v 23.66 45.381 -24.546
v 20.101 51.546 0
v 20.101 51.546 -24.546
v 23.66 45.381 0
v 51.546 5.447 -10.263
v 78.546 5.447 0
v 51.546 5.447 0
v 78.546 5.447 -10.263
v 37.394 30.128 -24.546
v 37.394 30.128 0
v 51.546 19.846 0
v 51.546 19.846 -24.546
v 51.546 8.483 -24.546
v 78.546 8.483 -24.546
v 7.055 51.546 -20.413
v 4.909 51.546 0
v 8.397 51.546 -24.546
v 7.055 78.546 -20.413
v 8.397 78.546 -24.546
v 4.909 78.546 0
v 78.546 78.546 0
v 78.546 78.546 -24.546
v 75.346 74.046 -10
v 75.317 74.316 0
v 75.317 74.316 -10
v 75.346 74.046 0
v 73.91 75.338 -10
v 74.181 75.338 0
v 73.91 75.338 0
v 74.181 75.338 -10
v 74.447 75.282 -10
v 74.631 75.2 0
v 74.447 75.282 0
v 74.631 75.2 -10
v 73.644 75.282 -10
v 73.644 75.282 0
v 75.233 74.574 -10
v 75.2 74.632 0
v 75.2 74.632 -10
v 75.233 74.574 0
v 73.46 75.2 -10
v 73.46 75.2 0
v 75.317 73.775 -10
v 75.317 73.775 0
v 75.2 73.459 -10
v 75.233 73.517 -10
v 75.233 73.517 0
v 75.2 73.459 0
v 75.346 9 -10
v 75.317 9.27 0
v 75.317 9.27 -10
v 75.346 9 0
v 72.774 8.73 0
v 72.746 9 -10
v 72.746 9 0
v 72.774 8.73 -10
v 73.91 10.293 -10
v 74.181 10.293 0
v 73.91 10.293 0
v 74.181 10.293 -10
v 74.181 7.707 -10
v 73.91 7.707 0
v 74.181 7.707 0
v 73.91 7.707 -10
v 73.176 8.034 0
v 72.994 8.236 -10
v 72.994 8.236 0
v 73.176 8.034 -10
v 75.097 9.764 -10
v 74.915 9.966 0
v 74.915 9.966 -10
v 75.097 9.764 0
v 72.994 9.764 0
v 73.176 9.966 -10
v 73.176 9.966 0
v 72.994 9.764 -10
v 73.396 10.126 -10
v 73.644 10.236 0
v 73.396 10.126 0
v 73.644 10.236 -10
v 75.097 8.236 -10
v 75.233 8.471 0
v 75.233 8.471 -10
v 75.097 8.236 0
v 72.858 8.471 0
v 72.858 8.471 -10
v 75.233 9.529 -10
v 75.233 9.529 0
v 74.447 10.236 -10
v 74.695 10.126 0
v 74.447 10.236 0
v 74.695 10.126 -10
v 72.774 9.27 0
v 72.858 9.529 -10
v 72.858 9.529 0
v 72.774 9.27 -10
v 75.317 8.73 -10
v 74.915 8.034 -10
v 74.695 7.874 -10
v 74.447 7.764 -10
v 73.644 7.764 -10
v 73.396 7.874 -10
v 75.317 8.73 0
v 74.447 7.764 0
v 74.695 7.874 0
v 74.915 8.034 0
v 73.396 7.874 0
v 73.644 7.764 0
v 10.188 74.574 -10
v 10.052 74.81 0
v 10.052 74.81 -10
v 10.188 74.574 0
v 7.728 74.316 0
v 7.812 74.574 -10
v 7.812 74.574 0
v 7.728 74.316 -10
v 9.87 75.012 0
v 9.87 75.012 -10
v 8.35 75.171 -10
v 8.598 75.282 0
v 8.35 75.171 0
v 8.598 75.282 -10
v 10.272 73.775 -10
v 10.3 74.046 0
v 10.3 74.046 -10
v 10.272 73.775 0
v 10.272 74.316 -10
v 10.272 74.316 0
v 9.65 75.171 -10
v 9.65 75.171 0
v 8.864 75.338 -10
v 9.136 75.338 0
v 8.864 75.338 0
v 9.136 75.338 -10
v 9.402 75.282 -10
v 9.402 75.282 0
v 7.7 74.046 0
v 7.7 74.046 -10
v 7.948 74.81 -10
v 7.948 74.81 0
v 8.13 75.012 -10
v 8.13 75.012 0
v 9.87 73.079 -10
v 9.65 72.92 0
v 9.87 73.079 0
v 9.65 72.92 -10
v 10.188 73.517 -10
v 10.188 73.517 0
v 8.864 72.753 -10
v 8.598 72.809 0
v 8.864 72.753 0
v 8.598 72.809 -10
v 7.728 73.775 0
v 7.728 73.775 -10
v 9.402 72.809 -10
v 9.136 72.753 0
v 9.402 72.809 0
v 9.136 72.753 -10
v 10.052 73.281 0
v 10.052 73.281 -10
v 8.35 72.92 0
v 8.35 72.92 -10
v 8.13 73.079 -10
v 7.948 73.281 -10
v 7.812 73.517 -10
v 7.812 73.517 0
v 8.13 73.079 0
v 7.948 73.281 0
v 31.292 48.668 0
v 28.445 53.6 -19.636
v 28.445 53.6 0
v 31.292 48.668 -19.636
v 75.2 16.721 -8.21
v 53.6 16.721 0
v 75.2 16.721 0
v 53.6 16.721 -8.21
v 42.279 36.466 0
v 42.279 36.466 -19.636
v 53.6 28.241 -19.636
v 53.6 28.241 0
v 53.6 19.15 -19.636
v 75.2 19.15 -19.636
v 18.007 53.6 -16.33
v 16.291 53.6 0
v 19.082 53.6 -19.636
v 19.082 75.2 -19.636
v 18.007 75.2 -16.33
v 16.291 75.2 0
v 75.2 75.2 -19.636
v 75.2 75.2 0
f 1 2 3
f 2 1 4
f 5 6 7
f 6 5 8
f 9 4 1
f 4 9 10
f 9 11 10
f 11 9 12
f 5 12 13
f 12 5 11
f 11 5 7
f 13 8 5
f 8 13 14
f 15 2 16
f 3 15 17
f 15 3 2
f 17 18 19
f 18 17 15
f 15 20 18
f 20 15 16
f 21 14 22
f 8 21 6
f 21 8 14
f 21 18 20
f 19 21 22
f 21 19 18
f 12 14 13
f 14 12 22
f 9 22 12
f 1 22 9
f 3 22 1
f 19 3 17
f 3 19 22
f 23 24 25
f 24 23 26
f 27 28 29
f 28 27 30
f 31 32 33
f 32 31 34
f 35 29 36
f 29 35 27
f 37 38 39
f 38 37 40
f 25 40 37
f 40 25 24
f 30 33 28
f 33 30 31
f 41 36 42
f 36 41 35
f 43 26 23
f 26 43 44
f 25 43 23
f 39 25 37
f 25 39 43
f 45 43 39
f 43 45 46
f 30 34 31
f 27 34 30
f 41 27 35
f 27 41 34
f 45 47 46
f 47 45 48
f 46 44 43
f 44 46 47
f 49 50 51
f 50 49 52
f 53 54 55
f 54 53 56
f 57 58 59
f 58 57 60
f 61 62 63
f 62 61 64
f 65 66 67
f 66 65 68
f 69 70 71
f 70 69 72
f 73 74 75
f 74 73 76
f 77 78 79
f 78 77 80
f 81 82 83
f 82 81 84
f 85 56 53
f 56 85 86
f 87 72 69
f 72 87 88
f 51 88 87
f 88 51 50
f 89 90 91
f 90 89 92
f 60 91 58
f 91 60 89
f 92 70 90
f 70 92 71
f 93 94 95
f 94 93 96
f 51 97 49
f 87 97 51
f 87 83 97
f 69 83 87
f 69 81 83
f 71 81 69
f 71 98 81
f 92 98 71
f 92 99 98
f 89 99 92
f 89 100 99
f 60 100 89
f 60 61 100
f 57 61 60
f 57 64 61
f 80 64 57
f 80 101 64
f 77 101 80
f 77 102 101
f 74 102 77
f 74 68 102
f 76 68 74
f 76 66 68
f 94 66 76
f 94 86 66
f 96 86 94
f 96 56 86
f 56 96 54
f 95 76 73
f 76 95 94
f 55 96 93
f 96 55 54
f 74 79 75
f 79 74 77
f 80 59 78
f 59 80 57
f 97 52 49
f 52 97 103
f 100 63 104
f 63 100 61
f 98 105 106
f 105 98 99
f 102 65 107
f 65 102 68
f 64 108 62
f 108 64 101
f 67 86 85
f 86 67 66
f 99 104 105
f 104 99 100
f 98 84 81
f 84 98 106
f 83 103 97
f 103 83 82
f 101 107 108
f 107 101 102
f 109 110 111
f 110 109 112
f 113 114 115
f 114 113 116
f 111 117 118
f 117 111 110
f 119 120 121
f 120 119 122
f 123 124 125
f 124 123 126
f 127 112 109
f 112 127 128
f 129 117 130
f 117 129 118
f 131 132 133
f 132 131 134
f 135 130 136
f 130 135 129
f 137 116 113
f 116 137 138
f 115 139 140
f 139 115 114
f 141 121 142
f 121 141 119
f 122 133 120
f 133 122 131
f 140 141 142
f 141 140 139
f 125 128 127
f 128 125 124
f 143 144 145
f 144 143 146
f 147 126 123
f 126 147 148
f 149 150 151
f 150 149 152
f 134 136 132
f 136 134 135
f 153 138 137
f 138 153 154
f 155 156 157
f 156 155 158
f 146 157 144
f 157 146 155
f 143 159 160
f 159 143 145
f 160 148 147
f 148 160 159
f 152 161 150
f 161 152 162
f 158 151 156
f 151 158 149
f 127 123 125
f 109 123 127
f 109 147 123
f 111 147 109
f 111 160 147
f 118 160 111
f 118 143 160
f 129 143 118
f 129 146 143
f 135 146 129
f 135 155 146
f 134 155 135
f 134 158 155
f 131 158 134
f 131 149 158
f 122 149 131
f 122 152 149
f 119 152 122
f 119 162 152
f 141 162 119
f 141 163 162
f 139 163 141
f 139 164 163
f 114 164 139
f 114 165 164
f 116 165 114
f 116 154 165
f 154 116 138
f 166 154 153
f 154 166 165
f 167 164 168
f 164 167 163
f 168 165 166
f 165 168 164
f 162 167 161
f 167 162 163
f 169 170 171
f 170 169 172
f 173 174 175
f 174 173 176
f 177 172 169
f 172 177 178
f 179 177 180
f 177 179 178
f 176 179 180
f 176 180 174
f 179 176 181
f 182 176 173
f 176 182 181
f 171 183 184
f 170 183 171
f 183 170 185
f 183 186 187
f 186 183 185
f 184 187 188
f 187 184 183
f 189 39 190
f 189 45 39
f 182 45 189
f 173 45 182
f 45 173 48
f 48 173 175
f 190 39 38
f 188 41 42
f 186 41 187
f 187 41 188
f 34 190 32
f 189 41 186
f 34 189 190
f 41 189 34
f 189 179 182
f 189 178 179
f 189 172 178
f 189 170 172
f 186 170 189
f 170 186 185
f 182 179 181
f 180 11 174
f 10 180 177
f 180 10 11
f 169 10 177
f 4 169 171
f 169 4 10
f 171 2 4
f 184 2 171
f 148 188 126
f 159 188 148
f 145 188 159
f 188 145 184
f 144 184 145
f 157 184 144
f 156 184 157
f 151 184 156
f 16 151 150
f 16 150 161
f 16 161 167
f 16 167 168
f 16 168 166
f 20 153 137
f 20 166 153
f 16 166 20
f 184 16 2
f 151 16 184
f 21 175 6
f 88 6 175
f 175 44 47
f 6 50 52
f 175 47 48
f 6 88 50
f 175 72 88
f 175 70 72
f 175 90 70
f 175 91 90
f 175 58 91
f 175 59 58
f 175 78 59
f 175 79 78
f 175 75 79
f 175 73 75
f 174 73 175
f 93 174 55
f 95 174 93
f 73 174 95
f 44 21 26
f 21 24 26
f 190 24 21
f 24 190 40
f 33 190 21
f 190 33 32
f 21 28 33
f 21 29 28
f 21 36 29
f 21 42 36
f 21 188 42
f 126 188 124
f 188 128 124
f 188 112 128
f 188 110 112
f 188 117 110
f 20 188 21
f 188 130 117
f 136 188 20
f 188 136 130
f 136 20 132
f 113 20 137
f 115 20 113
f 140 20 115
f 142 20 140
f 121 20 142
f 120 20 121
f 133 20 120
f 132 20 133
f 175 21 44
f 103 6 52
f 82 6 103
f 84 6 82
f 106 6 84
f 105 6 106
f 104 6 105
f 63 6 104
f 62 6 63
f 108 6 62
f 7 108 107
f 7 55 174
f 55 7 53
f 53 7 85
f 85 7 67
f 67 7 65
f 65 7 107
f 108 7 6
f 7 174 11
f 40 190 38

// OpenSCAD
// file: variables.scad
$fn=200;

scale_factor = 300/55;

CUBIE=18.9*scale_factor; //total side length of each cube piece (including rounded edges)
CORE=18*scale_factor;
SCREW_TIP=1.5*scale_factor;
SCREW_BODY=2*scale_factor;
SCREW = 3.5;
SCREW_HEAD=3.8*scale_factor;
INNER=4.5*scale_factor;
SPRING=3.2*scale_factor;
ROUND=2*scale_factor; //radius of rounded edges
DEPTH=6*scale_factor;
RAFT=5*scale_factor;
LAYER=0.3*scale_factor;
GAP=0.25*scale_factor;

core_height = 20 * scale_factor;
core_radius = 3.1 * scale_factor;

WITH_SUPPORT=false;
WITH_RAFT=false;

inner_cubie=(CUBIE-2*ROUND); //length of each cube before rounded edges

tile_length = inner_cubie*0.75;
//tile_height = 0.8 * scale_factor;
tile_height = 3;

HOLE_RADIUS = 1.3;
HOLE_HEIGHT = 20;

module tile(length, height) {
	translate([-length/2,-length/2,0]) {
		minkowski(){
			translate([0,0,-height/2]) cube([length,length,height]);
			cylinder(r=ROUND,h=height,center=true);
		}
	}
	
}
//tile(tile_length,tile_height);

module cubie() {
    translate([-inner_cubie/2,-inner_cubie/2, -inner_cubie/2])
    minkowski() {
        cube([inner_cubie, inner_cubie, inner_cubie]);
        sphere(r=ROUND);
    }
}

module disc() {
    cylinder(CUBIE, r1=CORE, r2=CORE,  center=true);

}

module disc2() {
    cylinder(CUBIE*10, r1=CORE, r2=CORE,center=true);

}

module icore() {
    disc();
    rotate([0,90,0])
        disc();
    rotate([90,0,0])
        disc();
}

module core2() {
    intersection() {
        disc2();
        rotate([0,90,0])
            disc2();
        rotate([90,0,0])
            disc2();
    }
}

module screw() {
    translate([5.2,0,0])
    rotate([0,90,0]) {
        cylinder(11.7,r1=SCREW_BODY,r2=SCREW_BODY,center=true);
        translate([0,0,-11.7/2-1.7/2])
            cylinder(1.7,r1=SCREW_HEAD,r2=SCREW_HEAD,center=true);
        translate([0,0,11.7/2+5.7/2])
            cylinder(5.7,r1=SCREW_TIP,r2=SCREW_TIP,center=true);
    }
}
// main file
include <variables.scad>
$fn = 30;
x=5;

module edge_connector_full() {
    difference() {
        intersection() {
            cube([2*CUBIE-2*INNER,2*CUBIE-2*INNER,2*INNER],center=true);
                      //cube([50*scale_factor,50*scale_factor,2*INNER],center=true);
            translate([CUBIE,CUBIE,0])
            icore();
        }
        translate([(((2*CUBIE-2*INNER)/2-(CUBIE-CORE))*0.2)/2+x,(((2*CUBIE-2*INNER)/2-(CUBIE-CORE))*0.2)/2+x,0])
            scale([0.8,0.8,0.8]) 
            intersection() {
                cube([CUBIE+(CUBIE-2*INNER),CUBIE+(CUBIE-2*INNER),2*INNER],center=true);
            translate([CUBIE,CUBIE,0])
            icore();
        }
                   
     }
 }
 
 module edge_connector() {
     difference() {
         difference() {
             edge_connector_full();
             cube([200,200,50]);
         }
        union() {
            translate([CUBIE/2+22.5,CUBIE/2+22.5,0]) cylinder(r=HOLE_RADIUS, h=HOLE_HEIGHT, center=true);
            translate([CUBIE/2+22.5,9,0]) cylinder(r=HOLE_RADIUS, h=HOLE_HEIGHT, center=true);
            translate([9,CUBIE/2+22.5,0]) cylinder(r=HOLE_RADIUS, h=HOLE_HEIGHT, center=true);
        } 
     }
 }
 
edge_connector();
